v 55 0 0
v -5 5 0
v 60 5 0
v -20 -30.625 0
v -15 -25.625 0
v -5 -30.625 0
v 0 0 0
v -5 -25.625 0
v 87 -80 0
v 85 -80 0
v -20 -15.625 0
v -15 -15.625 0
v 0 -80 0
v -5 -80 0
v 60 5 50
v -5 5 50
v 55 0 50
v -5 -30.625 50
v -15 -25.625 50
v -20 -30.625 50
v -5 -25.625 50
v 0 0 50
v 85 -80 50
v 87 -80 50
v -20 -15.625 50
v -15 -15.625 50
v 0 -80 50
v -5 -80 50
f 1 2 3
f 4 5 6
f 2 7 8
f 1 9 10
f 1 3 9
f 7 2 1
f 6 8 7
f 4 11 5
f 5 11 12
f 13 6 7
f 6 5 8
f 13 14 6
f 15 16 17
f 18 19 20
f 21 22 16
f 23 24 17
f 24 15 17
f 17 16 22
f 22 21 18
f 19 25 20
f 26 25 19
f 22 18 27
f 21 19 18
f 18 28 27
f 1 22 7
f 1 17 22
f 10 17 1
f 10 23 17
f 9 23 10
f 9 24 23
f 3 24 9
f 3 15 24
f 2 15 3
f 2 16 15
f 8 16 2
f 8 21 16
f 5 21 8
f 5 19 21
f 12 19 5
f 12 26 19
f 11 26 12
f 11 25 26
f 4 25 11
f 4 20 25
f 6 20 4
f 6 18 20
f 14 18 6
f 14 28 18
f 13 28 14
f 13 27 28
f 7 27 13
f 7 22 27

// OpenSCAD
// Generated by SolidPython 1.0.5 on 2021-03-17 09:57:49
$fn = 9;


linear_extrude(height = 50, slices = 1) {
	polygon(points = [[0, -80], [0, 0], [55.0000000000, 0], [85.0000000000, -80], [87.0000000000, -80], [60.0000000000, 5.0000000000], [-5.0000000000, 5.0000000000], [-5.0000000000, -25.6250000000], [-15.0000000000, -25.6250000000], [-15.0000000000, -15.6250000000], [-20.0000000000, -15.6250000000], [-20.0000000000, -30.6250000000], [-5.0000000000, -30.6250000000], [-5.0000000000, -80]]);
}
/***********************************************
*********      SolidPython code:      **********
************************************************
 
from solid import *
from solid.utils import *

cm = 10

couch_edge_width = 5.5*cm
height = 8*cm
thickness = 0.5*cm
width = 5*cm
couch_back_slope = 3 / 8  # dx / dy
hook_gap = 1*cm
hook_length = hook_gap + thickness
hook_start = -couch_back_slope * couch_edge_width

hook = linear_extrude(height=width, slices=1)(
    polygon([
        [0, -height],  # Starting from bottom and doing the inner path first
        [0, 0],
        [couch_edge_width, 0],
        [couch_edge_width + couch_back_slope*height, -height],
        [couch_edge_width + couch_back_slope*height + 0.2*cm, -height],
        [couch_edge_width + thickness, thickness],
        [-thickness, thickness],
        [-thickness, hook_start - thickness],  # Hook start
        [-thickness - hook_gap, hook_start - thickness],
        [-thickness - hook_gap, hook_start + thickness],
        [-thickness - hook_length, hook_start + thickness],
        [-thickness - hook_length, hook_start - thickness * 2],
        [-thickness, hook_start - thickness * 2],  # Hook end
        [-thickness, -height],
    ])
)

fn = 9
scad_render_to_file(hook, "hook-behind-couch.scad",
                    file_header='$fn = %d;' % fn)
 
 
************************************************/
